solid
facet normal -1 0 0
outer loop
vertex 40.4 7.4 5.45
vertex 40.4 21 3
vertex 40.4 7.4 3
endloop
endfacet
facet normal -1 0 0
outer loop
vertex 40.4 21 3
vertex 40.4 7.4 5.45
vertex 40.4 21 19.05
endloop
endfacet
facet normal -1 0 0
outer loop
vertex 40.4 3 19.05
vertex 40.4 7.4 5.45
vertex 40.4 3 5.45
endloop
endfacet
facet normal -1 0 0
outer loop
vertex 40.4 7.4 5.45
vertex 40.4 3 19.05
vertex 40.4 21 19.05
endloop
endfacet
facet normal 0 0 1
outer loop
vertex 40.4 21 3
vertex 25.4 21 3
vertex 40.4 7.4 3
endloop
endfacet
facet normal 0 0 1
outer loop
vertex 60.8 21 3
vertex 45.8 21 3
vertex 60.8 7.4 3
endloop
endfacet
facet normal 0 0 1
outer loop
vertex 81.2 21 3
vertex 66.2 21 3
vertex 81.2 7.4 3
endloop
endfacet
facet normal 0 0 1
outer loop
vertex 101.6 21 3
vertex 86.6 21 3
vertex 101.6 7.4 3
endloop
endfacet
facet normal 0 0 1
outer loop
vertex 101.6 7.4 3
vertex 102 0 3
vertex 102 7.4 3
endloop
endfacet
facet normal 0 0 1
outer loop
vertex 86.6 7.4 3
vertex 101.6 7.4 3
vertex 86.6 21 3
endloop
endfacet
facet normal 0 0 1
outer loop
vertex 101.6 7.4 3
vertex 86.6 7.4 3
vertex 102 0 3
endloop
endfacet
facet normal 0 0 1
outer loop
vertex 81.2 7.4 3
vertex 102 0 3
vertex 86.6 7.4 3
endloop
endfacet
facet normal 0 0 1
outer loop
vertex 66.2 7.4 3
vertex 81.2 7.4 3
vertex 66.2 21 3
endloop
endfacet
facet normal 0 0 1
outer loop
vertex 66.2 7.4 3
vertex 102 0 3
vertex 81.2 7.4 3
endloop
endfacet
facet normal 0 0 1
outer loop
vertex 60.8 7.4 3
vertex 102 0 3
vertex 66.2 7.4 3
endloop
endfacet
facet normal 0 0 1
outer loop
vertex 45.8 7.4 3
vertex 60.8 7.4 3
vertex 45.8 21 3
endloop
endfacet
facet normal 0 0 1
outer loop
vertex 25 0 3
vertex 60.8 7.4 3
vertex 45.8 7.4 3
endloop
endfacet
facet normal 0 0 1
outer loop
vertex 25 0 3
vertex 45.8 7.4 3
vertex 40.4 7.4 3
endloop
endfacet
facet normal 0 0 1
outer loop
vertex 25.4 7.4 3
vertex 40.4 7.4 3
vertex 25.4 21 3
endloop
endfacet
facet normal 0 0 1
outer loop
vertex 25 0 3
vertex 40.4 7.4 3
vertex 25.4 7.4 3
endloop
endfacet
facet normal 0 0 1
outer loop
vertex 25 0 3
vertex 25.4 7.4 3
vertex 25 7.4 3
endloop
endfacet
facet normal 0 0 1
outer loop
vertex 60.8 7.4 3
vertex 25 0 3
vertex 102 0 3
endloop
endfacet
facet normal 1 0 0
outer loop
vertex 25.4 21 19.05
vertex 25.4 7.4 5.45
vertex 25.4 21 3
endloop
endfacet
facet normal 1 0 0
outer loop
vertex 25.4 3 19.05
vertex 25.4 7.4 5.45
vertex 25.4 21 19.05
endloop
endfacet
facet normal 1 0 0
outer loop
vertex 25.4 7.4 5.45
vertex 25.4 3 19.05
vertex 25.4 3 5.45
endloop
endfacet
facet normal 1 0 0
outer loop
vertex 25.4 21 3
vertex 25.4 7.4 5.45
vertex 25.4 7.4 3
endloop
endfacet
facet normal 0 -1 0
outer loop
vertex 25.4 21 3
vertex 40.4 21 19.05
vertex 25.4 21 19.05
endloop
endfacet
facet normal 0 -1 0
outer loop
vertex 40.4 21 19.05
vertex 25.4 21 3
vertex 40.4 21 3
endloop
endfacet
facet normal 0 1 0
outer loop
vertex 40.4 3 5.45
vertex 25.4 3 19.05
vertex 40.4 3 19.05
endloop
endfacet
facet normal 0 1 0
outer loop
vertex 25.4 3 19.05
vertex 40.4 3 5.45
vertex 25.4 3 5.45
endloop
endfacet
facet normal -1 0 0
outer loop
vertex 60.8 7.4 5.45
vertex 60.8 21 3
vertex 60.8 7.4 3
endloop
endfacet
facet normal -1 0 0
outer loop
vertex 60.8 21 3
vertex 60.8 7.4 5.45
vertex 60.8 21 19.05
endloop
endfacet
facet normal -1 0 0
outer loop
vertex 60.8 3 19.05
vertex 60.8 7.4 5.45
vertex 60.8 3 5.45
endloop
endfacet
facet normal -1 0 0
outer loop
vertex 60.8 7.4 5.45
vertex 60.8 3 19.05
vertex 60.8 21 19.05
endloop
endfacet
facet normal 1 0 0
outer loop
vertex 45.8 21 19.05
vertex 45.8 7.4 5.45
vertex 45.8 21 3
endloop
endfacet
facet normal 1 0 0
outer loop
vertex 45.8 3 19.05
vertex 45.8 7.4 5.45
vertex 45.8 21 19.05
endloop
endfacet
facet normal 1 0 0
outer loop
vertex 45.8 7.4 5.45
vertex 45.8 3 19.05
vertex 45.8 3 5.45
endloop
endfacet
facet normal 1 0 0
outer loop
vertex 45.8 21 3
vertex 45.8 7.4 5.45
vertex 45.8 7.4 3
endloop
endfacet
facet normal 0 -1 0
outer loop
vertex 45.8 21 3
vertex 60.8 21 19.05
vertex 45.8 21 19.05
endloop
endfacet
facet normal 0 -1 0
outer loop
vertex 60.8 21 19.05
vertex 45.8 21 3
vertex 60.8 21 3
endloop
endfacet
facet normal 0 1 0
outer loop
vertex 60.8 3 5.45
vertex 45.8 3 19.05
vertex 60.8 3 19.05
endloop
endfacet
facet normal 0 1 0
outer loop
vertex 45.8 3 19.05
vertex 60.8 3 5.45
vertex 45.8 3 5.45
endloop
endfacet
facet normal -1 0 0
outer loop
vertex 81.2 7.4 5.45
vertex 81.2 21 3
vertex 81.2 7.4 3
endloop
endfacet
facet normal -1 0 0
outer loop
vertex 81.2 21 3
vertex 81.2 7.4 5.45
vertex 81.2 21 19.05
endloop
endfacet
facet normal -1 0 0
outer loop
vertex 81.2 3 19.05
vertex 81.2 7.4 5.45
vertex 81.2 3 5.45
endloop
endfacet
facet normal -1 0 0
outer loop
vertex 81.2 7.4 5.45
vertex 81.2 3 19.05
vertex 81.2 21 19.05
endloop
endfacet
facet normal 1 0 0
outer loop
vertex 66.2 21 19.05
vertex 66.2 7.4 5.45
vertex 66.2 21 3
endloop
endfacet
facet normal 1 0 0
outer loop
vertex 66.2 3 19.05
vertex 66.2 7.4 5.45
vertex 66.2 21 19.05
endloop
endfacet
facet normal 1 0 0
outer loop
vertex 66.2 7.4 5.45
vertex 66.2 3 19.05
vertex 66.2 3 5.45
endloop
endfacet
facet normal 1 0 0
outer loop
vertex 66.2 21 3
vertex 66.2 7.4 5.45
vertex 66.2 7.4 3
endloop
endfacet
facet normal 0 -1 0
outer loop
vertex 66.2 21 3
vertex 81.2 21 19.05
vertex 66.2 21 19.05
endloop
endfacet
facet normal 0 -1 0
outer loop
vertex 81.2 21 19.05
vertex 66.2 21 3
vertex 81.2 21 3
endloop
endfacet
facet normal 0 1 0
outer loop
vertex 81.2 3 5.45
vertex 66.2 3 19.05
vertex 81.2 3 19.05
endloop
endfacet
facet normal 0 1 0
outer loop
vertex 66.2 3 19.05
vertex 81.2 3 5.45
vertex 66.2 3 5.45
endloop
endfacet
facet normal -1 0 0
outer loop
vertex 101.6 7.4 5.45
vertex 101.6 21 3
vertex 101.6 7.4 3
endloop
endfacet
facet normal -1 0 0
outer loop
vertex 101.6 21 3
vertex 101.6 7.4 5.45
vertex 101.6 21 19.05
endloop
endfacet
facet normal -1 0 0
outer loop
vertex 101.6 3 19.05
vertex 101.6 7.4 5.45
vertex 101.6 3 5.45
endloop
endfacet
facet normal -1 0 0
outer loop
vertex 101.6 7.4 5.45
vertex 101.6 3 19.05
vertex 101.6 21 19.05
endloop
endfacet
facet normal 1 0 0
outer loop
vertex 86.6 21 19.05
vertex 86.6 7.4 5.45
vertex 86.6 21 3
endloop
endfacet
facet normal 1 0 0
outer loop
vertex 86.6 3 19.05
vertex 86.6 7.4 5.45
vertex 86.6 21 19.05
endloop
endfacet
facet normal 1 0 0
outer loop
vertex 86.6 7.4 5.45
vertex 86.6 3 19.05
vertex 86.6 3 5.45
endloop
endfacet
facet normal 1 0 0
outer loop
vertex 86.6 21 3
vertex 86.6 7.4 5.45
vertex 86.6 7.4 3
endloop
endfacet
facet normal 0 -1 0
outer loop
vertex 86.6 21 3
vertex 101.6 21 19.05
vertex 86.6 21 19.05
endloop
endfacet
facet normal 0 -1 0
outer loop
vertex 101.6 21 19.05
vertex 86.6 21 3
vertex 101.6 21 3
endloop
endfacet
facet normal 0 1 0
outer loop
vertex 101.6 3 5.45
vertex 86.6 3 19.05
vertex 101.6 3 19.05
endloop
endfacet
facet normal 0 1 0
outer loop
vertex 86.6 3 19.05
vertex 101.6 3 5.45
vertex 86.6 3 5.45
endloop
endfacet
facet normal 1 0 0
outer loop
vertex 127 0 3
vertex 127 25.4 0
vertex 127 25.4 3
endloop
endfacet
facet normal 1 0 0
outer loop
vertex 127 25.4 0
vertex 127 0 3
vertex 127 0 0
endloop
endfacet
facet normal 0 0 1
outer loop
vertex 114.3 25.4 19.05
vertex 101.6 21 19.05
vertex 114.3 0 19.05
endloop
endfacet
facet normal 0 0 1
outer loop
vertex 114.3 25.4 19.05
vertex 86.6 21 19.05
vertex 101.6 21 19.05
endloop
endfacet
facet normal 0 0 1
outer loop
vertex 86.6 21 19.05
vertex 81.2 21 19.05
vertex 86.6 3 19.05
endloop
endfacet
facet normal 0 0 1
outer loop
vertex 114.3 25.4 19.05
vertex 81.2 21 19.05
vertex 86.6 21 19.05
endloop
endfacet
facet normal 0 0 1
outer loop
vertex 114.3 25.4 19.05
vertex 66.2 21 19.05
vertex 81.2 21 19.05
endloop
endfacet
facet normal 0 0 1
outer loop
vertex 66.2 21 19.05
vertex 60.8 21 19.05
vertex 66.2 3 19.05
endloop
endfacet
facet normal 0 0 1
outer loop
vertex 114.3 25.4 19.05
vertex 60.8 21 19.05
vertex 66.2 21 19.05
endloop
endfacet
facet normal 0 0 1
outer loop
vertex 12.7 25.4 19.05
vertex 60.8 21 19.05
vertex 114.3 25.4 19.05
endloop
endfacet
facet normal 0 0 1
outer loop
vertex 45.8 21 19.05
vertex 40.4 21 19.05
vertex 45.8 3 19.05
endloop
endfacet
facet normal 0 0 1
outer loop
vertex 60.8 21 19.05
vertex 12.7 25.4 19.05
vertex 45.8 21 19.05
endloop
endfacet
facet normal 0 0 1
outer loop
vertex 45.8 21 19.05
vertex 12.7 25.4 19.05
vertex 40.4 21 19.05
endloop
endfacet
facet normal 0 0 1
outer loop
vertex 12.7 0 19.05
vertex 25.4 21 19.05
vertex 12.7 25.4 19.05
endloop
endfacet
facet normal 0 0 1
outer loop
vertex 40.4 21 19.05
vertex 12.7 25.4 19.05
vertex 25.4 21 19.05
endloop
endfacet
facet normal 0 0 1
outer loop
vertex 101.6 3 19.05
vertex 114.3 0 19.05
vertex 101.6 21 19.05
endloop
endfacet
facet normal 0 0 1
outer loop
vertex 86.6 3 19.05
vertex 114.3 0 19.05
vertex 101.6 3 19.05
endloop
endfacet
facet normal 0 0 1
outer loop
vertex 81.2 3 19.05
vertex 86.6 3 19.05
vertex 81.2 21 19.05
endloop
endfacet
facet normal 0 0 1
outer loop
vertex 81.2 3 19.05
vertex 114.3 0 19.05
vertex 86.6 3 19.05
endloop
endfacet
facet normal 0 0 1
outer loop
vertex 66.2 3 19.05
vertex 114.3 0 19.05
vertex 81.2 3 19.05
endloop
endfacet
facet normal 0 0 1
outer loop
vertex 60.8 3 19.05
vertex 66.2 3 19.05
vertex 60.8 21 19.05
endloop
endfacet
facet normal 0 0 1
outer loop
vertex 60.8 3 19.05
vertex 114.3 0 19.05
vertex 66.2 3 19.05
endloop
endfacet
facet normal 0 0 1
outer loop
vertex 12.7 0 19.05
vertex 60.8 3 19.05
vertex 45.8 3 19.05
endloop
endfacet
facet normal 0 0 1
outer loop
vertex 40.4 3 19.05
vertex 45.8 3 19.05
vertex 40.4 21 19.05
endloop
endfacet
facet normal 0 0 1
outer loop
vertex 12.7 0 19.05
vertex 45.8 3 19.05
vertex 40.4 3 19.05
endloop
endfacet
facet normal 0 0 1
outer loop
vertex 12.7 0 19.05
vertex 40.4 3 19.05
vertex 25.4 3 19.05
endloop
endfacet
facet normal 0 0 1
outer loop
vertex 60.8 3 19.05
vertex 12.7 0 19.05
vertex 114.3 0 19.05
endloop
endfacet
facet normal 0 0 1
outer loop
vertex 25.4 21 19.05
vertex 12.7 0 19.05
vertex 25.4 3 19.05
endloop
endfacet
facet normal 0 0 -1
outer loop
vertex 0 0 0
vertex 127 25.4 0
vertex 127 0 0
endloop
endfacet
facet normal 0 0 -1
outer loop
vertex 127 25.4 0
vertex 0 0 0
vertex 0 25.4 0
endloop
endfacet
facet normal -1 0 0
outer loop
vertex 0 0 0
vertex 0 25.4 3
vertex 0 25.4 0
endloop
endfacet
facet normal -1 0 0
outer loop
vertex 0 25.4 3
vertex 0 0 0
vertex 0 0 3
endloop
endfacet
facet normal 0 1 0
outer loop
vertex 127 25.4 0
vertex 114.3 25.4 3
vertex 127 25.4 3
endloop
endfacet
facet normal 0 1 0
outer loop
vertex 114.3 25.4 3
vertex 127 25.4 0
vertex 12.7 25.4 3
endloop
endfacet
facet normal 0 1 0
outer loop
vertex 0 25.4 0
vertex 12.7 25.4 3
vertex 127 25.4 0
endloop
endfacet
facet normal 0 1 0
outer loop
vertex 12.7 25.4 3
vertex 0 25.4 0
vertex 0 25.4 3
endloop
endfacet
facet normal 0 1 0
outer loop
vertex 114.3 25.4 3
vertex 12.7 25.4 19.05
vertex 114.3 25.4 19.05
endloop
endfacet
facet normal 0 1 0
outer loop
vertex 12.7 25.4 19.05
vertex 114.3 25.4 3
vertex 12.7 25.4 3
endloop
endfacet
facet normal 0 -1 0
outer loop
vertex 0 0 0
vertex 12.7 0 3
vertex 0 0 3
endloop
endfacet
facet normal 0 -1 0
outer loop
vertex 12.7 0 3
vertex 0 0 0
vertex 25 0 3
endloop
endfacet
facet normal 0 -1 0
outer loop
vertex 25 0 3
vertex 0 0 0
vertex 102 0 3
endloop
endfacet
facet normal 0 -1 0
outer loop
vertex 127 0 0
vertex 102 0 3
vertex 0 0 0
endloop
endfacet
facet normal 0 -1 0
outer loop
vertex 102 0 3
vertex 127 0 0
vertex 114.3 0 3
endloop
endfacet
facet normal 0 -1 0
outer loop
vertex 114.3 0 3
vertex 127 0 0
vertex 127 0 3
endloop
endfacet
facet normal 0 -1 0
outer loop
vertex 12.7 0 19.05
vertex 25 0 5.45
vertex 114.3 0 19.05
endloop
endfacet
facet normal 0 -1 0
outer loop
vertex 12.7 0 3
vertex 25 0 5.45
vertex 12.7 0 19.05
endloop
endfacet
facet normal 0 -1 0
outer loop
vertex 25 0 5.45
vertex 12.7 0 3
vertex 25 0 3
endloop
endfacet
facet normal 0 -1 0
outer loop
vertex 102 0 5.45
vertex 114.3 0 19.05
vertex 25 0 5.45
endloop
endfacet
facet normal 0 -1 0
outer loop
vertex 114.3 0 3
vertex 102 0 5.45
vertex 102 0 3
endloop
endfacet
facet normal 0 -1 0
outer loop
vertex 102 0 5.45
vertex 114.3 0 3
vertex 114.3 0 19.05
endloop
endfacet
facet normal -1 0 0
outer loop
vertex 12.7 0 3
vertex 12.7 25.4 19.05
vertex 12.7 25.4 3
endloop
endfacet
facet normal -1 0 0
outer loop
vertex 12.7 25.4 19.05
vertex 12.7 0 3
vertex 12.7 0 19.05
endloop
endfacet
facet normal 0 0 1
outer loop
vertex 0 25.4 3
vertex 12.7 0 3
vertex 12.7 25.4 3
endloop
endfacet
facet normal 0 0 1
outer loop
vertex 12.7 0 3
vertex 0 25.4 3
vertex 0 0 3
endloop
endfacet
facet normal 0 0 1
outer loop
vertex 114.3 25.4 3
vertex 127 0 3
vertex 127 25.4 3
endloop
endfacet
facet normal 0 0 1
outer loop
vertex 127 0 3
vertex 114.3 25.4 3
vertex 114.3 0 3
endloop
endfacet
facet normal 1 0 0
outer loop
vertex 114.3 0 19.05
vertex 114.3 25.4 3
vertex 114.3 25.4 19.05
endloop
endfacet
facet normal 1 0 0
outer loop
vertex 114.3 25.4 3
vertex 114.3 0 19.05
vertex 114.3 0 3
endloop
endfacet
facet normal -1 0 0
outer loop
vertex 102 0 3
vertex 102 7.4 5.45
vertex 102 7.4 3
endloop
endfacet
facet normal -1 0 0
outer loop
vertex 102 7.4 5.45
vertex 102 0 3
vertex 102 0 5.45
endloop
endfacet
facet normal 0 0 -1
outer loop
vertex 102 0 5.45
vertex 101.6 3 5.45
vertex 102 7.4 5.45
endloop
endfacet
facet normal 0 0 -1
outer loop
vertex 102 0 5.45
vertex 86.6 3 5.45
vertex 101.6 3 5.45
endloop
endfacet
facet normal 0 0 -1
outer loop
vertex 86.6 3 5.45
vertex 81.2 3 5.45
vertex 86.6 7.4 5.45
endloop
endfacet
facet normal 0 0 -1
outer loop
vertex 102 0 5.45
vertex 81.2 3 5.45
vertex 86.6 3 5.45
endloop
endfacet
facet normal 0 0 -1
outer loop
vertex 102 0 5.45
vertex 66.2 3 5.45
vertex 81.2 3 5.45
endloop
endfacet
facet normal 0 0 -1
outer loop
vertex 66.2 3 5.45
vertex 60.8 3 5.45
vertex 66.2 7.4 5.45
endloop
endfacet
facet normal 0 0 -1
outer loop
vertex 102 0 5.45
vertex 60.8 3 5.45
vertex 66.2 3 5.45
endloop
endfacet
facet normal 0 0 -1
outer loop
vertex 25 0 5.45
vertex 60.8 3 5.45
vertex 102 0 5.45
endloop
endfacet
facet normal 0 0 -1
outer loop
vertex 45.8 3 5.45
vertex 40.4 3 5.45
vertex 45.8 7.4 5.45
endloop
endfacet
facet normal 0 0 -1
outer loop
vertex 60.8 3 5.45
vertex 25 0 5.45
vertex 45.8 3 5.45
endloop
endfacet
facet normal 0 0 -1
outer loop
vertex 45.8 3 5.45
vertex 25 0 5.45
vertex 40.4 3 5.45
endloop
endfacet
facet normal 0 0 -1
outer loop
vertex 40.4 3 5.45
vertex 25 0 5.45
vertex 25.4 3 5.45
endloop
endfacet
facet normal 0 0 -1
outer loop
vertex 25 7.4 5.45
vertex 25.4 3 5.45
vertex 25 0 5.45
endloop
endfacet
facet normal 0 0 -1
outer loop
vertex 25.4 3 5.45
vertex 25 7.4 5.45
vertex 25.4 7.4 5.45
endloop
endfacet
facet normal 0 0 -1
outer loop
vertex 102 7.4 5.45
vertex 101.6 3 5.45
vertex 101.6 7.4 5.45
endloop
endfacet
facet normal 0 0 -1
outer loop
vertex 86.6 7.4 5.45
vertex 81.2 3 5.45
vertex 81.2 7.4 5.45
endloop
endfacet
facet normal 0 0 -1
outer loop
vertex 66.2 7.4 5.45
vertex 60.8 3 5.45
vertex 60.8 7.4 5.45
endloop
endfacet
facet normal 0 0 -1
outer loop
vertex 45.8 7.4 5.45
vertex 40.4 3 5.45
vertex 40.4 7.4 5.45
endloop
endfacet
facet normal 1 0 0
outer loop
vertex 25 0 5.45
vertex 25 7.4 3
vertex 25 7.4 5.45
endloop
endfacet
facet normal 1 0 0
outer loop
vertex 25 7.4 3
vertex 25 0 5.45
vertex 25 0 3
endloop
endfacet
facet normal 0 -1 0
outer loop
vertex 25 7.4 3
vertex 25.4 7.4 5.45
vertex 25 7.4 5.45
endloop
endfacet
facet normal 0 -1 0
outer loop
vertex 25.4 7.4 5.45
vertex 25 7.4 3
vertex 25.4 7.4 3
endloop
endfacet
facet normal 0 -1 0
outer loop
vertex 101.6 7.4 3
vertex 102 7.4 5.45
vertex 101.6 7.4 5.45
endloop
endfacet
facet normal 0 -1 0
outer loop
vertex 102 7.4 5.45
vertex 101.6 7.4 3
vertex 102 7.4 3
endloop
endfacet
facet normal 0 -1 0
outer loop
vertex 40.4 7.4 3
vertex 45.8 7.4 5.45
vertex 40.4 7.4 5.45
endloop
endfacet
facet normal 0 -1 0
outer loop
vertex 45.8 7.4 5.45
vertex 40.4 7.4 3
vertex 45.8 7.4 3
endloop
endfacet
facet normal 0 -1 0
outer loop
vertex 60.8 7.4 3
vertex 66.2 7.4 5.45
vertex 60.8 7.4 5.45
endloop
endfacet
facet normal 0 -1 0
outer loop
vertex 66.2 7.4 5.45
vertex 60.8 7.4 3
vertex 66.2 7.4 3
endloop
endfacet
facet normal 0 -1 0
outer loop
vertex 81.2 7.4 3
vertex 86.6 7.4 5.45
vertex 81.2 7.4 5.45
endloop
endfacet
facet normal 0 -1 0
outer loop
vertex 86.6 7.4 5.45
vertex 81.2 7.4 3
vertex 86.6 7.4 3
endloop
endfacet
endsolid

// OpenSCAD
// patch panel

xin = 5;
yin = 1;
zin = 0.75;

x = xin * 25.4;
y = yin * 25.4;
z = zin * 25.4;



difference(){
    // main body
    cube([x, y, z]);
    // edges
    translate([0, 0, 3])
        cube([25.4/2, y, z]);
    translate([x-(25.4/2), 0, 3])
        cube([25.4/2, y, z]);
    // rail for wires
    
    translate([25, 0, 3])
        cube([x-50, y-18, 2.45]);
    
    // openings for connectors
    for( x = [0, 1, 2, 3]){
    translate([25.4 + (x*20.4), 3, 3])
        cube([15, 18, 500]);
    }
}
